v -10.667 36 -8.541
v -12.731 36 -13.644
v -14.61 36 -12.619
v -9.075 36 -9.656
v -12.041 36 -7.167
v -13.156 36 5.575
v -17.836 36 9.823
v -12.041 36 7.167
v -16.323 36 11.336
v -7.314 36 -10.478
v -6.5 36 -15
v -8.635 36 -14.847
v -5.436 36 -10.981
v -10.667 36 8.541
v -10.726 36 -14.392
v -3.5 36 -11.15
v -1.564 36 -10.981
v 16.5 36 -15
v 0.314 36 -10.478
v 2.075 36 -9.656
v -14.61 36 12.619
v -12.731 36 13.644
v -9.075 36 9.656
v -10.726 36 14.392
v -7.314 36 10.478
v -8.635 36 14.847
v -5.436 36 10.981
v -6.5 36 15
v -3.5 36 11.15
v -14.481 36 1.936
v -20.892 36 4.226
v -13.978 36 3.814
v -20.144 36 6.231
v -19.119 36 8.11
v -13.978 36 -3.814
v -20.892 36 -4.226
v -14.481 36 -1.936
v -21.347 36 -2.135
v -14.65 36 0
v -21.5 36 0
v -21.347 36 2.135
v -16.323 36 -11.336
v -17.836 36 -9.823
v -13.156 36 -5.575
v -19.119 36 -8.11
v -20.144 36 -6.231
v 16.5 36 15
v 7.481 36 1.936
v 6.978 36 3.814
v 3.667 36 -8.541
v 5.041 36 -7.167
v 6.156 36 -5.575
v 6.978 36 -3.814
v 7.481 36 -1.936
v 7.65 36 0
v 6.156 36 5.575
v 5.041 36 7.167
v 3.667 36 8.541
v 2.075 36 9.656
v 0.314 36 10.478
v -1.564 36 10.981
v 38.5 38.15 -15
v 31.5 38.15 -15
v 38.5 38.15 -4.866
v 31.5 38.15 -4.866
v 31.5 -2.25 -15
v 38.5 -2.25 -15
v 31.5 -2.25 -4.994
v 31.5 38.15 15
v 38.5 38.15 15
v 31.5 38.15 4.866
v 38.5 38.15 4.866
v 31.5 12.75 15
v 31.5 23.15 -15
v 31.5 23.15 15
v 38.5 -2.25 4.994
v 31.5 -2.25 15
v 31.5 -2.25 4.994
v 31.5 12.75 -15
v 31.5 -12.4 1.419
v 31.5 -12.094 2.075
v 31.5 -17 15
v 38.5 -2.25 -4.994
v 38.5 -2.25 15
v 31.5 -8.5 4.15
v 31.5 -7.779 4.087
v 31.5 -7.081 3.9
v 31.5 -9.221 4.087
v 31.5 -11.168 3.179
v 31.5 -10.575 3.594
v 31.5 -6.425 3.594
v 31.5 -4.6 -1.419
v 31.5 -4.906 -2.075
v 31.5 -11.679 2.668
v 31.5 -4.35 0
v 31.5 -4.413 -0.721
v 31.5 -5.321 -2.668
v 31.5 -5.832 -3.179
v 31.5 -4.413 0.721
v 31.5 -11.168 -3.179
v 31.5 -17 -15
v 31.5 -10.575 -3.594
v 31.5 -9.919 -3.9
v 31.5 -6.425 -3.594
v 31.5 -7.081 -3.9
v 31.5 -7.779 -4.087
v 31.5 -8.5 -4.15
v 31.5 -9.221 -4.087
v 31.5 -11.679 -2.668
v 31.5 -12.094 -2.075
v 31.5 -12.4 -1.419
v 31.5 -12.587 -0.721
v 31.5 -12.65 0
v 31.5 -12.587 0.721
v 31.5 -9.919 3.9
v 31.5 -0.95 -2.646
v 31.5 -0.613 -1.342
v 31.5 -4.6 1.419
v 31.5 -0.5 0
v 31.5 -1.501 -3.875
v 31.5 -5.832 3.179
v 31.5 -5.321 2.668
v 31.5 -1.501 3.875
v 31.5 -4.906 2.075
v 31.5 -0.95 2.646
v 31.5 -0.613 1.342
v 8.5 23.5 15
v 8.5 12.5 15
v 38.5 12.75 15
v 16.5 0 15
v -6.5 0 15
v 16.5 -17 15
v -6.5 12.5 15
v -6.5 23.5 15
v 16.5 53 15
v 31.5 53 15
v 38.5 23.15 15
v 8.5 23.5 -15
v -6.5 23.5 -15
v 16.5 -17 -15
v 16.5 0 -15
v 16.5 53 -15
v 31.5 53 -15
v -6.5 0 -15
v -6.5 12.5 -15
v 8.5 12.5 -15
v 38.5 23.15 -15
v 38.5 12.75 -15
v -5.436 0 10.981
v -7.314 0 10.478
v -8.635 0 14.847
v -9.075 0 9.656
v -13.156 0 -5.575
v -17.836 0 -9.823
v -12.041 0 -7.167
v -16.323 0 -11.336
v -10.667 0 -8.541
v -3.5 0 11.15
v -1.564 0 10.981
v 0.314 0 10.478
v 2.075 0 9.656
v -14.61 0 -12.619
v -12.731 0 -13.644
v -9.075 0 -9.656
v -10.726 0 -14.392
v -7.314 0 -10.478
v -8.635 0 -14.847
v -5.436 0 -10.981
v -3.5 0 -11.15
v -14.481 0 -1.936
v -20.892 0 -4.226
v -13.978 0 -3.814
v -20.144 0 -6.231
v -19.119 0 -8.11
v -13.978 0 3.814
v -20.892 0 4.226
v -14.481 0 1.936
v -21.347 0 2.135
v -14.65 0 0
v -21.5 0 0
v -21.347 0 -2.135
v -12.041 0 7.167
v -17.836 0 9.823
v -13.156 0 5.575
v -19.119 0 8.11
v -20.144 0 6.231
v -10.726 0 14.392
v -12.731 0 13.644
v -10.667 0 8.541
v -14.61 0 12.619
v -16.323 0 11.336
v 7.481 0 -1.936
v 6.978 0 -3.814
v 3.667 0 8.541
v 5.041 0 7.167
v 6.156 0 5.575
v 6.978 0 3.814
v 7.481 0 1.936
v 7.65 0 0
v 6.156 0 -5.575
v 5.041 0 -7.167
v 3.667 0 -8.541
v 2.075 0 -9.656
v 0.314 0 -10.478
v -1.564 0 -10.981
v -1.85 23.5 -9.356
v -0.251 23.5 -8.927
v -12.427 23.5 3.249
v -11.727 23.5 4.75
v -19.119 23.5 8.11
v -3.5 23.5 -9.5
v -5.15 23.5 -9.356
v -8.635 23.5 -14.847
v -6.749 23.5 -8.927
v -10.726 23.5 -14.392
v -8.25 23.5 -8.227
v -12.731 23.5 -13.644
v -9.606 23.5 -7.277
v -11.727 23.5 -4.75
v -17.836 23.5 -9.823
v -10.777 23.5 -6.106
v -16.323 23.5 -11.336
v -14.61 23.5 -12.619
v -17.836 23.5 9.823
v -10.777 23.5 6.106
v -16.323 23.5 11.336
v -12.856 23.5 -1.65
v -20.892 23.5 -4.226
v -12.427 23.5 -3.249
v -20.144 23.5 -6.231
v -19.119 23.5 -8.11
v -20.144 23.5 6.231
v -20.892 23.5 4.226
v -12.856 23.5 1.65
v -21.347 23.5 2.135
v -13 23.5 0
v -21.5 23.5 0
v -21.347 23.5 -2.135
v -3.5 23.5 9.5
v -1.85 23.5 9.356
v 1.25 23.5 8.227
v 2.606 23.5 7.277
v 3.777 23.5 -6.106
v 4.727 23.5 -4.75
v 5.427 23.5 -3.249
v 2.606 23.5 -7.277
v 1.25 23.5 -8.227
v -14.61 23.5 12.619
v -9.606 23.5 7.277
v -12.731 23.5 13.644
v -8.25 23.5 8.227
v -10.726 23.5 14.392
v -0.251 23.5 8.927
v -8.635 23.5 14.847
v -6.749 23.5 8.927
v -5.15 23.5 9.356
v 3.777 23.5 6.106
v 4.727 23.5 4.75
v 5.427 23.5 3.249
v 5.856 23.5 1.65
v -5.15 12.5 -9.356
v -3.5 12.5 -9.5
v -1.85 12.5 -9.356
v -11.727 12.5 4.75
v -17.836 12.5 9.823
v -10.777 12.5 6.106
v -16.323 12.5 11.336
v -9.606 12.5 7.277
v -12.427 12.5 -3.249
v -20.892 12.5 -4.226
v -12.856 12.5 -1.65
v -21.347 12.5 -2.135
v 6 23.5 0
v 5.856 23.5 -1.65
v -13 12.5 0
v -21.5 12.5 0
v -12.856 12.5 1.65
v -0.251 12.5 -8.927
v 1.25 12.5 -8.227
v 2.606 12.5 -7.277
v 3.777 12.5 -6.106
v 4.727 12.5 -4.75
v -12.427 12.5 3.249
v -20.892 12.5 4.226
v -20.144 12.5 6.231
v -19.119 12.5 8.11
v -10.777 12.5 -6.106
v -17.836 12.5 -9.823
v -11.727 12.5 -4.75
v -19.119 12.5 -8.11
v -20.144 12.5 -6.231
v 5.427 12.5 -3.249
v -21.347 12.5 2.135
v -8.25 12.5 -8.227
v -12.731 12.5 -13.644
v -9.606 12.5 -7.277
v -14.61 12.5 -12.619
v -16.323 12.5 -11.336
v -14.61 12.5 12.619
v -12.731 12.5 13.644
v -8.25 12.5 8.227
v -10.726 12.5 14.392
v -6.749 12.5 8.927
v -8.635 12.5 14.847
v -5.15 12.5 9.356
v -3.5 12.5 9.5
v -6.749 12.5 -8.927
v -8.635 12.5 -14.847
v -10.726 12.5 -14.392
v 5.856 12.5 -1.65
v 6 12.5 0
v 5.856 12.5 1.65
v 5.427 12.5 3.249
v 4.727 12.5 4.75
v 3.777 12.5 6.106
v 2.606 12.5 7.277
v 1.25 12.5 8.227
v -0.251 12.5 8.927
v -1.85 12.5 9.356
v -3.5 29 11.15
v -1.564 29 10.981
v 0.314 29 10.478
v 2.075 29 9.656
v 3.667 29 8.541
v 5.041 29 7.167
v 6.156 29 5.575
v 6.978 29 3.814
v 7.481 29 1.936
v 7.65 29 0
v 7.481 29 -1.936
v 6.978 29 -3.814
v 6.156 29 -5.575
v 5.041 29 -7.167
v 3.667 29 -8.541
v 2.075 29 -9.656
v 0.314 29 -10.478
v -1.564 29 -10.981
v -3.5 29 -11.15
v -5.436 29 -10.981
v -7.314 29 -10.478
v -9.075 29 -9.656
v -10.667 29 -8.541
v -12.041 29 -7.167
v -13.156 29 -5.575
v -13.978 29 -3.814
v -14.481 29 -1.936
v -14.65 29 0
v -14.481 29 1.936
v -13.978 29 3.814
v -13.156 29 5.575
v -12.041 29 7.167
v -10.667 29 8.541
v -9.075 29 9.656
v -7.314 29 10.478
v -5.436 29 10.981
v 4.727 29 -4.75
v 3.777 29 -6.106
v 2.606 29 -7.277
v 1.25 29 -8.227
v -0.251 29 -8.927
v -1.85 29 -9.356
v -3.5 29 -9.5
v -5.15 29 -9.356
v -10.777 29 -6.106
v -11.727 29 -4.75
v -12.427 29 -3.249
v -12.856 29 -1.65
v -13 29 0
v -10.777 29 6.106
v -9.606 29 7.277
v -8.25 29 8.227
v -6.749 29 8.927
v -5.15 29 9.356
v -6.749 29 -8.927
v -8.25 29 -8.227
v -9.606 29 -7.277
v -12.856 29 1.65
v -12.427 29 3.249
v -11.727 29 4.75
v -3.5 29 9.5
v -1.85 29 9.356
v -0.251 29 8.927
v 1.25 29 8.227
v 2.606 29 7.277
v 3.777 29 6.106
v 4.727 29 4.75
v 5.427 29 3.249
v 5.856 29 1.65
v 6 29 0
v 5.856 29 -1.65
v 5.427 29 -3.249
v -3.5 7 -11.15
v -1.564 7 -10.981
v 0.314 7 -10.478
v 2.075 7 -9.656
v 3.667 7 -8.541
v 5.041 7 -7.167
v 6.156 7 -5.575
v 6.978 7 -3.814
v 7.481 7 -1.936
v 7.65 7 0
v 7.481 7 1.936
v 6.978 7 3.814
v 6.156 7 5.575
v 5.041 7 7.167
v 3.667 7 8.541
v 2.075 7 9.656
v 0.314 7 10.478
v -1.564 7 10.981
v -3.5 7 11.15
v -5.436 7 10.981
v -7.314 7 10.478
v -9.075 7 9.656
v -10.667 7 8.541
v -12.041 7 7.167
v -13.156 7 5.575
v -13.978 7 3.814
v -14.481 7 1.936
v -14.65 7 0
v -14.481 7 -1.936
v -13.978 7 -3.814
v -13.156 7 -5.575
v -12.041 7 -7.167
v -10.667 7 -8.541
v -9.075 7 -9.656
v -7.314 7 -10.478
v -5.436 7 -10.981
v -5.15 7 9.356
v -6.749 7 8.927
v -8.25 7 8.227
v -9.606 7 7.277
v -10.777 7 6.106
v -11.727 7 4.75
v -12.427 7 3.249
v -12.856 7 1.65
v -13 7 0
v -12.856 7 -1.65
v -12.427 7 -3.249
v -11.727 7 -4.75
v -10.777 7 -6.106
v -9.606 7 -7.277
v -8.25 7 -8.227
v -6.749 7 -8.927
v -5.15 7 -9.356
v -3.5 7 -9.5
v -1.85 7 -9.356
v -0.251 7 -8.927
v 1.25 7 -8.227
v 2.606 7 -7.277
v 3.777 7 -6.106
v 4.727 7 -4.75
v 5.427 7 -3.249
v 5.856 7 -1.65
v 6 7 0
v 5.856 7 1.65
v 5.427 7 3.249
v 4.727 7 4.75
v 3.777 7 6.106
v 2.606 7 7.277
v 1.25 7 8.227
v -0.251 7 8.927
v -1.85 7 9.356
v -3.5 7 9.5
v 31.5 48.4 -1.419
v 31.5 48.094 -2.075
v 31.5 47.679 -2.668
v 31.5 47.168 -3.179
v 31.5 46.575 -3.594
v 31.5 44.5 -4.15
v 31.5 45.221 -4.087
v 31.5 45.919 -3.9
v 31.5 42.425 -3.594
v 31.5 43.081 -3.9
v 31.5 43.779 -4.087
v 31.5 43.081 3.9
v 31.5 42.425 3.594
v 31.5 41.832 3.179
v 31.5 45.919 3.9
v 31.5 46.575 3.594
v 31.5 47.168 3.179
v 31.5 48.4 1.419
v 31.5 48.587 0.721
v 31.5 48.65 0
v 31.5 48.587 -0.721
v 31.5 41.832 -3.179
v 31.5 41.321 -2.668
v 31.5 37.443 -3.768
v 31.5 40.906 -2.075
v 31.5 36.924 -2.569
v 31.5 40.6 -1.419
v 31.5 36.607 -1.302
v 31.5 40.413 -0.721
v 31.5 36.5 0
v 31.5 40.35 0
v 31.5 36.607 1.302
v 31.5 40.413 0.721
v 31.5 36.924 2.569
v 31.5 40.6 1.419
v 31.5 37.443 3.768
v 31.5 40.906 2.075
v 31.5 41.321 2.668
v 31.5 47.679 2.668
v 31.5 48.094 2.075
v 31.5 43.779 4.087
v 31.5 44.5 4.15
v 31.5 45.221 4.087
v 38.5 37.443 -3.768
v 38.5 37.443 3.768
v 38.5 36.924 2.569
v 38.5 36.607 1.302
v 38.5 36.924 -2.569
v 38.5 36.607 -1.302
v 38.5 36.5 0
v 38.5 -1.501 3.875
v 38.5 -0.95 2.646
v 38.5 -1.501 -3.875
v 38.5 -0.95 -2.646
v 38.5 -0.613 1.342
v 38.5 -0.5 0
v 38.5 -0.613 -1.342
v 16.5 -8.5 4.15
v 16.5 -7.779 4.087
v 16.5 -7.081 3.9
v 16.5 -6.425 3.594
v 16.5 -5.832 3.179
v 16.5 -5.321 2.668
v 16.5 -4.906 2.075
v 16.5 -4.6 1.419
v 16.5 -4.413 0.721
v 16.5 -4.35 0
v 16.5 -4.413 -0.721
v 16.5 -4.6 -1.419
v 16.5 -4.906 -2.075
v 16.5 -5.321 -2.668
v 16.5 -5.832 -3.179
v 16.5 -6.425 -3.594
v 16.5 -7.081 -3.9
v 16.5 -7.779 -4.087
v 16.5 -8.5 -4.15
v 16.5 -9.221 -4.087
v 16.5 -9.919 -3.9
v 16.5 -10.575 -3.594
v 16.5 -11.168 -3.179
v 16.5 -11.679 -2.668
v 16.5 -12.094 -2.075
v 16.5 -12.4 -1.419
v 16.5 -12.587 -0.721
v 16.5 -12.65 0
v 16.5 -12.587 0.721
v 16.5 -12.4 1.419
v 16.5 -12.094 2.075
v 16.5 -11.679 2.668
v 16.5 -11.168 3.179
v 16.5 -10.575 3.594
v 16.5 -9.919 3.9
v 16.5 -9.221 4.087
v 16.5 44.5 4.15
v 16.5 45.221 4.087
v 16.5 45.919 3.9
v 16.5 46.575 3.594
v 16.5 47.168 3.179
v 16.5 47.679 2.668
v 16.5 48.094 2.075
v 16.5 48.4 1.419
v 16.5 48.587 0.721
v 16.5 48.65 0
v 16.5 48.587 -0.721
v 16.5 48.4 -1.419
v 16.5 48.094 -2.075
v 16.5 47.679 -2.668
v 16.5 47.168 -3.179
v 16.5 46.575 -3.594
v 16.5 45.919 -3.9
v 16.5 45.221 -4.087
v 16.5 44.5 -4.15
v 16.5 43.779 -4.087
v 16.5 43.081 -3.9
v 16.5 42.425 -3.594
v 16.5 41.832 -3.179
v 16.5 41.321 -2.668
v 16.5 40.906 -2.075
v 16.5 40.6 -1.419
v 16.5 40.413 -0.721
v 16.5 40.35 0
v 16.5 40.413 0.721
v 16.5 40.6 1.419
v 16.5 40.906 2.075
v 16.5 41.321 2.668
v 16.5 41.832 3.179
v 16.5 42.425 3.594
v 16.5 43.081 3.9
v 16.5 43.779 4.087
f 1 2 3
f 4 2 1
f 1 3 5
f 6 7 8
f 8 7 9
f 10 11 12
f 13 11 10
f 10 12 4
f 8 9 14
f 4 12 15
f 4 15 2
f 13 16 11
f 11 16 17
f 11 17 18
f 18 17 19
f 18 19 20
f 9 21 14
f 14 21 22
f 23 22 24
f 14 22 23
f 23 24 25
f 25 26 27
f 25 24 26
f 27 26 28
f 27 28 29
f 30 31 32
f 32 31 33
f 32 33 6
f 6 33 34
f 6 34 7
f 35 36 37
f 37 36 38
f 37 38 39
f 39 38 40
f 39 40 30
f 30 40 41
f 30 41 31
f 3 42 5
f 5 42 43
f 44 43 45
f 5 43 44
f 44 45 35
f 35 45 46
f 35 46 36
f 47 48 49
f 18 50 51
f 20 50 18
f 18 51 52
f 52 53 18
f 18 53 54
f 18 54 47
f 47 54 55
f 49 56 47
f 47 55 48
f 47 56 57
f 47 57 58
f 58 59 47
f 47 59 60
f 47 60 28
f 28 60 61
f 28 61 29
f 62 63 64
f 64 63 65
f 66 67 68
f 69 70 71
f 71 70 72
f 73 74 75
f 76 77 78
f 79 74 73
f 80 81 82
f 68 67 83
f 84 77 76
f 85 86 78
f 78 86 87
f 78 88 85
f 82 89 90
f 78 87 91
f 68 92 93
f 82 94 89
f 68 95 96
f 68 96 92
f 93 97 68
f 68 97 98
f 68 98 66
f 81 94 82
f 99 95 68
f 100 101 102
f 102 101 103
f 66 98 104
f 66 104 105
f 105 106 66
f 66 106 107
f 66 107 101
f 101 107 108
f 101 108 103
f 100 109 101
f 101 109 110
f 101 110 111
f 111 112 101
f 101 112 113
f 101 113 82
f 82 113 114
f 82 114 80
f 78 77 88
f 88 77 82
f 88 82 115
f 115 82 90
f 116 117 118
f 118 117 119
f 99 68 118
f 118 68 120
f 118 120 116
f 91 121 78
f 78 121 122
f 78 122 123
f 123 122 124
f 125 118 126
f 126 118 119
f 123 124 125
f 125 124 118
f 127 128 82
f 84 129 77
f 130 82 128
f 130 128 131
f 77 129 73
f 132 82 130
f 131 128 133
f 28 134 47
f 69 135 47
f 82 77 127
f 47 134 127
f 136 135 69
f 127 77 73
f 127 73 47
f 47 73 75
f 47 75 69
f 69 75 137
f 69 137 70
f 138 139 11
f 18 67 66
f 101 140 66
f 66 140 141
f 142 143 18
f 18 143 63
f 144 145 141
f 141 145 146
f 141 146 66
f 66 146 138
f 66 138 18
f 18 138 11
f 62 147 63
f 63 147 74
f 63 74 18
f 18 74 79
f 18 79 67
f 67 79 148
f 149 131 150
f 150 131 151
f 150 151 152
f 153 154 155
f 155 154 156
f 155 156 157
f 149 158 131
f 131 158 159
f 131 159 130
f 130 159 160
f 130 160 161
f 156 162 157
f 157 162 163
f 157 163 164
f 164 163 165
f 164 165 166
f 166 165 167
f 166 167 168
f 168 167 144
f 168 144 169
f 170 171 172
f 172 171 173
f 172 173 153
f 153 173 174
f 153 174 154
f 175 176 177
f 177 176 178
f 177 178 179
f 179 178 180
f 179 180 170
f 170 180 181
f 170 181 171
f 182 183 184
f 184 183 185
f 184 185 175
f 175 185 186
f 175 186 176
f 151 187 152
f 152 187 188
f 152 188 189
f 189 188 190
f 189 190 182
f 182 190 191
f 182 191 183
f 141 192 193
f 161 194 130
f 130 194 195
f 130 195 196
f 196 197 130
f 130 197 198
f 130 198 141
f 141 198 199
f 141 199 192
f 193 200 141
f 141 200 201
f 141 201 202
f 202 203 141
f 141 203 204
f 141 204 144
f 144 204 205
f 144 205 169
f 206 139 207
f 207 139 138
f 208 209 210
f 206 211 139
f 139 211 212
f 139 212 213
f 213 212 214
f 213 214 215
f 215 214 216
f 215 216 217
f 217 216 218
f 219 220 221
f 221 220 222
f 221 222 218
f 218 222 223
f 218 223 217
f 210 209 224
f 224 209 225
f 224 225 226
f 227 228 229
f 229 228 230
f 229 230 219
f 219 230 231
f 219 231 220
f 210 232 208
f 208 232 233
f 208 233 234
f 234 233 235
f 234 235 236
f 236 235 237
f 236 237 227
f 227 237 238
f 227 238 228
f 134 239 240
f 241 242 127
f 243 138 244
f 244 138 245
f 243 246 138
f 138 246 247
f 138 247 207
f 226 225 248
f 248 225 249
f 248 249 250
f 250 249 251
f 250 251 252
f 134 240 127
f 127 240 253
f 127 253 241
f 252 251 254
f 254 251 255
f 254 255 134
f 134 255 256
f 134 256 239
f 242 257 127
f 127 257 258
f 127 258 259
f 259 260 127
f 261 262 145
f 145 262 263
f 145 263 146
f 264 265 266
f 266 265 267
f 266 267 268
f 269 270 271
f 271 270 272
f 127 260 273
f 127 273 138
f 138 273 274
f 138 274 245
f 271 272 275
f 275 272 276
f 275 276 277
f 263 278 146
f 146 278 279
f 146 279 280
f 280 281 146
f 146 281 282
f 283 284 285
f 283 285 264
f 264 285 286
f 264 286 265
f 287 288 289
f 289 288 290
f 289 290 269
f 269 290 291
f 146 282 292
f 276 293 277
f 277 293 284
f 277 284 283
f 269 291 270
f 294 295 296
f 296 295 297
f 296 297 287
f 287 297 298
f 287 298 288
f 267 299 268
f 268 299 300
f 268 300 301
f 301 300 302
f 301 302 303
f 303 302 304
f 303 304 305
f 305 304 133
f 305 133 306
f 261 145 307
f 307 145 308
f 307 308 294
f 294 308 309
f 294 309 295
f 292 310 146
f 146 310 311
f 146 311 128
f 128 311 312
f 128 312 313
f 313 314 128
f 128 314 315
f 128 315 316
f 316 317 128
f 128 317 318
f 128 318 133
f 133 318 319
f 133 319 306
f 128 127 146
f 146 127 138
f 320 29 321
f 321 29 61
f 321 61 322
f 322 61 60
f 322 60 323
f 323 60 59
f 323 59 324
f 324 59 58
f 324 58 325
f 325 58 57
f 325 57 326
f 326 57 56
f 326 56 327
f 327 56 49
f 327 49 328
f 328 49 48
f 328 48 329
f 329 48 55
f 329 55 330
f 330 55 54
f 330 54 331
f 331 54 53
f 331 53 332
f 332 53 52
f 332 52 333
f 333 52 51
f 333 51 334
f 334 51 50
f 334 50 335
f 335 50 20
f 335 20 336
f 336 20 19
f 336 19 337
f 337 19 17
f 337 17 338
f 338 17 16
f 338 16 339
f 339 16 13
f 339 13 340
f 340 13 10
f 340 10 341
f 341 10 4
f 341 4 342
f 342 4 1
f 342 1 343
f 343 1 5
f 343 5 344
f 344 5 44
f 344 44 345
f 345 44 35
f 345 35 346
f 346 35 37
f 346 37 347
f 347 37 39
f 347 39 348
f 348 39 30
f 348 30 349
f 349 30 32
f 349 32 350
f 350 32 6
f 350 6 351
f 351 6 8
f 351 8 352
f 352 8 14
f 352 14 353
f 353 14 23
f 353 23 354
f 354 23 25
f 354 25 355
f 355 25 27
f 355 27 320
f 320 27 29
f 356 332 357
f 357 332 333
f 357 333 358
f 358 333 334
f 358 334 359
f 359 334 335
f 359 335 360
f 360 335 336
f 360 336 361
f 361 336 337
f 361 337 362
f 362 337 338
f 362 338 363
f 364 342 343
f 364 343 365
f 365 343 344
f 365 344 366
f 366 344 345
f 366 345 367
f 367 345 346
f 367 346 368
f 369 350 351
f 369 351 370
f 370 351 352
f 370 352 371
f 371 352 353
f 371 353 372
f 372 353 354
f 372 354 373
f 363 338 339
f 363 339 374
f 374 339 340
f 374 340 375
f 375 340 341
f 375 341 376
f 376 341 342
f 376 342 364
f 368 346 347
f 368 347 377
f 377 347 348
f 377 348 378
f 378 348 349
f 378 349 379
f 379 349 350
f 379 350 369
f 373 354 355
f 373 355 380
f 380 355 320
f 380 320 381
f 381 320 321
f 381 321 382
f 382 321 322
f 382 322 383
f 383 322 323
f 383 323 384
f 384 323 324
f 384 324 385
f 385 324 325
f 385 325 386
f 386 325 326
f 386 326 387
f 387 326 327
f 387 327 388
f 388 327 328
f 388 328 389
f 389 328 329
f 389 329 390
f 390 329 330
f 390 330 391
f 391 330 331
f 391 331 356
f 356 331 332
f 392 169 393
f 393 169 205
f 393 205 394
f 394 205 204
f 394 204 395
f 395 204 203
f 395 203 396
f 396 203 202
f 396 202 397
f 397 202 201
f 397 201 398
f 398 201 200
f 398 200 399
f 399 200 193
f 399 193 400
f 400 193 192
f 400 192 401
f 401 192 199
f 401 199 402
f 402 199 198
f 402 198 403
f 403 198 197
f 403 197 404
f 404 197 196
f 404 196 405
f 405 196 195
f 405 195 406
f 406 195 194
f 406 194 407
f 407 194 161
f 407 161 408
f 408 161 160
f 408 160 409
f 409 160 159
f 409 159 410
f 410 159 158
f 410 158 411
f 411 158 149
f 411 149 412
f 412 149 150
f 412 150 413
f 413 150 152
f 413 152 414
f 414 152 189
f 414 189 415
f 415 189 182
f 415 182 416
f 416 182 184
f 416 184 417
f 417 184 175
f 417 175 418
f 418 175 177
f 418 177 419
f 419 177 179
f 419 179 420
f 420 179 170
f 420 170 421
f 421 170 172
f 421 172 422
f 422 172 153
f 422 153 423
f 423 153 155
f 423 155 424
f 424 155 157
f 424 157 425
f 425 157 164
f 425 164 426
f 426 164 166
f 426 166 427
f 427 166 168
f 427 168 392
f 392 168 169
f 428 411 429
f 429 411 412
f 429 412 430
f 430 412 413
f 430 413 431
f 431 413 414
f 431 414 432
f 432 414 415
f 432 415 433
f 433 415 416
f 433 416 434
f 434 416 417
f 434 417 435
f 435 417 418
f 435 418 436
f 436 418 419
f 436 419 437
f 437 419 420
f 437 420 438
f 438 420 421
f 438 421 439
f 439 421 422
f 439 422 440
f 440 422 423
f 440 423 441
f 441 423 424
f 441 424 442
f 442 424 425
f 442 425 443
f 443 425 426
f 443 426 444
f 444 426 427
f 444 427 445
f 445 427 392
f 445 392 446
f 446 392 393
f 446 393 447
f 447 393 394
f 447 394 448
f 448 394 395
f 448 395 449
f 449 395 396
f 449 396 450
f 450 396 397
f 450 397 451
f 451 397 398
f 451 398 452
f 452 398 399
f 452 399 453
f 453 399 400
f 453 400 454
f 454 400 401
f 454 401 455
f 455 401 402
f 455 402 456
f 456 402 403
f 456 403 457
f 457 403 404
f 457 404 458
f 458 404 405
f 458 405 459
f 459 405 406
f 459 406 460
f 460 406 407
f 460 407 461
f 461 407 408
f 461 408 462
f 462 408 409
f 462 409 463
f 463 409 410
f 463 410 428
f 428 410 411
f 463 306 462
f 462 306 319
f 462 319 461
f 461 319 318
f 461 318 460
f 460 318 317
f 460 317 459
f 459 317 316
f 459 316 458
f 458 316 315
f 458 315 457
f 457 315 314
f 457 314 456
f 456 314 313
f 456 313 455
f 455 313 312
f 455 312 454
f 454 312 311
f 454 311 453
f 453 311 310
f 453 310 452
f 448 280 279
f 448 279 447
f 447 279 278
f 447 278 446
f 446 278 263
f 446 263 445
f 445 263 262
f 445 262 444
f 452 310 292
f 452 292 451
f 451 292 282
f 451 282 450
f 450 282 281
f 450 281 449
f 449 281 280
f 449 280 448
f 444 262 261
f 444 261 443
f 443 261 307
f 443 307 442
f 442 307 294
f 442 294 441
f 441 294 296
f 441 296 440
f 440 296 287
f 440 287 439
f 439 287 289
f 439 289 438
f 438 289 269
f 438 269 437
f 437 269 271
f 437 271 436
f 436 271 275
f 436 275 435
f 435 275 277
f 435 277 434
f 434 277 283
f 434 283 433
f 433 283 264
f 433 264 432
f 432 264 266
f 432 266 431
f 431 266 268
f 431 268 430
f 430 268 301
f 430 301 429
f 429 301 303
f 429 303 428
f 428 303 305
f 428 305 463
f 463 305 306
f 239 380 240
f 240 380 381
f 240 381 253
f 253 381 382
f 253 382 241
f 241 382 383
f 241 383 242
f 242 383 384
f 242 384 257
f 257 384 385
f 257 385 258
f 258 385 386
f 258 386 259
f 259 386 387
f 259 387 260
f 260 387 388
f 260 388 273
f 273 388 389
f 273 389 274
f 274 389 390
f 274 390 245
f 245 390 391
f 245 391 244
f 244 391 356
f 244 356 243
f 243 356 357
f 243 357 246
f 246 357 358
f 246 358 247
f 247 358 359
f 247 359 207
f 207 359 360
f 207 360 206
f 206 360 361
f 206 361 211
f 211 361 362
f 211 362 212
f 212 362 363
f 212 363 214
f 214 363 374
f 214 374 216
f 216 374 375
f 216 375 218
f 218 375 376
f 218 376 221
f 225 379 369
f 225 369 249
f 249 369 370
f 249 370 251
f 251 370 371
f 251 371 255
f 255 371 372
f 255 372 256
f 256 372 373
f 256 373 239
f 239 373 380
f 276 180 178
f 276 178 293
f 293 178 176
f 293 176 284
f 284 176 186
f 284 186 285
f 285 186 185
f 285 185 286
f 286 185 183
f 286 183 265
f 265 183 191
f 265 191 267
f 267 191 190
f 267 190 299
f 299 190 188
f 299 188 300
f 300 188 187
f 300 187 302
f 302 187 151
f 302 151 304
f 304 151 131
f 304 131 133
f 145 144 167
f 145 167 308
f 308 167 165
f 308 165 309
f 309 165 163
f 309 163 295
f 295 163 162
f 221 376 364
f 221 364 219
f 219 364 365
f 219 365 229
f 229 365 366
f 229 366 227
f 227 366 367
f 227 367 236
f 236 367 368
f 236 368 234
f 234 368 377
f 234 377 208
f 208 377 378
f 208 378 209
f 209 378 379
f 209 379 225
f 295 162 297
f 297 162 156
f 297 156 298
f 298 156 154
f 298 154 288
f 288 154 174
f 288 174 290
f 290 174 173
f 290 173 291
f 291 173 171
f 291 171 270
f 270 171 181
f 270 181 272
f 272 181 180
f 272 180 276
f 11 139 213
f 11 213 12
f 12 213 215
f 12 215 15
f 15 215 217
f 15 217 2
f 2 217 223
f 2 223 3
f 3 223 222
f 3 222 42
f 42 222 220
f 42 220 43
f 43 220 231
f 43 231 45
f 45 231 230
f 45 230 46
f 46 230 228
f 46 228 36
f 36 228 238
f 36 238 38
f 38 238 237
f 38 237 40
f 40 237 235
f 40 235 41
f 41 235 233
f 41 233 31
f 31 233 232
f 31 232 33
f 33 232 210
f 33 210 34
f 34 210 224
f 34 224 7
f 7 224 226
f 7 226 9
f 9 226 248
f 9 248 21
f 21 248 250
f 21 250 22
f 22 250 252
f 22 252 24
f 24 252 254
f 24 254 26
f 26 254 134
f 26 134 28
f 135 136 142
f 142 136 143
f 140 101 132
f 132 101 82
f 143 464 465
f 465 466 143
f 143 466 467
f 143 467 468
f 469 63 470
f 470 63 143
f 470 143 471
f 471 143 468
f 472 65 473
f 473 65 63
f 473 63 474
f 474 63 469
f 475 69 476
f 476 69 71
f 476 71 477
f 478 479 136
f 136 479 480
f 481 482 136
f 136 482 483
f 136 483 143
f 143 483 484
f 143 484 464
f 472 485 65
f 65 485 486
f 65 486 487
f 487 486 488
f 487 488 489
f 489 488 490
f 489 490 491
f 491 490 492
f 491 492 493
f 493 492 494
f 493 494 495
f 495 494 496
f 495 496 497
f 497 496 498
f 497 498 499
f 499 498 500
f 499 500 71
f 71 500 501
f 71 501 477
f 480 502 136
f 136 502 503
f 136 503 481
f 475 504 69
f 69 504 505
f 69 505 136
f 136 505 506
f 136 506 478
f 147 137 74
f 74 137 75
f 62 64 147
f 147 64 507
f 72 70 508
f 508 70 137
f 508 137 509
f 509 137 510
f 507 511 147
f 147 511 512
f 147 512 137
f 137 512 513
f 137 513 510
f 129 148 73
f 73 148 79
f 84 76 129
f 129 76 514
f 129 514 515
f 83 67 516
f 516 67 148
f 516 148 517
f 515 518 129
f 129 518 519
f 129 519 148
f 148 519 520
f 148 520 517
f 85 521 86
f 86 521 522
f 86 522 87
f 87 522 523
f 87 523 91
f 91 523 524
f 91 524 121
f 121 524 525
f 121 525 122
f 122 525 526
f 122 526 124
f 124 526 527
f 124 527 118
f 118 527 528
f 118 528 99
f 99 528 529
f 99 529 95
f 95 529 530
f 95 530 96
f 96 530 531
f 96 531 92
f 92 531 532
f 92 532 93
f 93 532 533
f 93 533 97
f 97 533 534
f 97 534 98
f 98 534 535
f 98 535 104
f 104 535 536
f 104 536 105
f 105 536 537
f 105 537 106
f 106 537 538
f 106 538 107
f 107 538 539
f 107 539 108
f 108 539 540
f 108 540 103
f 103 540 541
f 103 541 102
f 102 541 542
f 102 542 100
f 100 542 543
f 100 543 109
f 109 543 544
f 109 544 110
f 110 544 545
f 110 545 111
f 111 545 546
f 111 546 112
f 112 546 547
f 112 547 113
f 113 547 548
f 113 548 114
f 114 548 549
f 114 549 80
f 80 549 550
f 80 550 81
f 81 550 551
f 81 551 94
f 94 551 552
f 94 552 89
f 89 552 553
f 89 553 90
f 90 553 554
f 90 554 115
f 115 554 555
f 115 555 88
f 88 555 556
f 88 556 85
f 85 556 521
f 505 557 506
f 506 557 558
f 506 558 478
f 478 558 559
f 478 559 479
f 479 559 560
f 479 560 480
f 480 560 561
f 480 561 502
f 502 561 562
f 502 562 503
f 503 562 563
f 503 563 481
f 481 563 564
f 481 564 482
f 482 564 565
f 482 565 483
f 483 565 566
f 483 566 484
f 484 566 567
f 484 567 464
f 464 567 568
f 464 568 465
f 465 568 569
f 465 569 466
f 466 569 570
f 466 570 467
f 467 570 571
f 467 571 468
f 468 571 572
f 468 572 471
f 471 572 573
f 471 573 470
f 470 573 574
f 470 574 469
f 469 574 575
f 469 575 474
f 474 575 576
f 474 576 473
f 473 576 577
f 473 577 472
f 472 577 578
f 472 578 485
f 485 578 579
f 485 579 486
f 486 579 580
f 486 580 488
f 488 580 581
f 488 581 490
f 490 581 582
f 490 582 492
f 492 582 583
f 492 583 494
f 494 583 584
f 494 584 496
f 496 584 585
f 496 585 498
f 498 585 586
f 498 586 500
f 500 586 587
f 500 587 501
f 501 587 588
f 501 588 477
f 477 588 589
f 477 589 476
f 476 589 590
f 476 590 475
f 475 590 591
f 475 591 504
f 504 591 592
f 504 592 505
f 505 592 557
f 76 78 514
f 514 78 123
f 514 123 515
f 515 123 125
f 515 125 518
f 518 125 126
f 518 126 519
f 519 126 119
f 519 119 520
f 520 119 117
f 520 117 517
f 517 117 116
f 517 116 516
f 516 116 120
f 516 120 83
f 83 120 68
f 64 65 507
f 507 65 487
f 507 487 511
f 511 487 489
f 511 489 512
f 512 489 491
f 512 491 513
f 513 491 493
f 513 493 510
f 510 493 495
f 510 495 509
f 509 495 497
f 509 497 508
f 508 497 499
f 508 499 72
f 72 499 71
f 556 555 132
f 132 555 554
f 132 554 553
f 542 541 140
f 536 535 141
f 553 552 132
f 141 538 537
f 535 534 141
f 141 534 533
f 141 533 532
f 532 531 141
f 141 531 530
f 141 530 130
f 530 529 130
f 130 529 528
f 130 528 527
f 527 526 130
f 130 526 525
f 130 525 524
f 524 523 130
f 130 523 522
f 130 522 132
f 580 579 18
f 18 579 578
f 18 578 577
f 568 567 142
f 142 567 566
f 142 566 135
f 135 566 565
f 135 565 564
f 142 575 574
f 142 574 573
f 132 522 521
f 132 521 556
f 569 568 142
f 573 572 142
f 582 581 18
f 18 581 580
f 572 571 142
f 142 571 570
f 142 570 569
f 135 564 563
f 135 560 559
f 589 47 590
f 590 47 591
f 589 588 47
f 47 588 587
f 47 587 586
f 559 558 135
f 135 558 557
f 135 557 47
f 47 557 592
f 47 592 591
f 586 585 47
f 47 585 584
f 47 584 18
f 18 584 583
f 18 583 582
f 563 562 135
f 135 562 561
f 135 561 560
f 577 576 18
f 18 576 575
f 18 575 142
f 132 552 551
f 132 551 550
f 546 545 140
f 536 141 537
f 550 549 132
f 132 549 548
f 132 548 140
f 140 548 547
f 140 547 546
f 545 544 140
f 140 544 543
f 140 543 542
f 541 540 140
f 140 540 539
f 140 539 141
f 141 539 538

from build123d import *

# Parameters (mm, degrees)
SKETCH1_W           = 43
SKETCH1_H           = 30
BOSS_EXTRUDE1_DEPTH = 36
SKETCH2_W           = 30
SKETCH2_H           = 11
CUT_EXTRUDE1_DEPTH  = 30
SKETCH3_R           = 11.15
CUT_EXTRUDE2_DEPTH  = 7
CUT_EXTRUDE3_START  = -7
SKETCH4_R           = 11.15
CUT_EXTRUDE3_DEPTH  = 7
SKETCH5_R           = 9.5
CUT_EXTRUDE4_DEPTH  = 40.092838219
FILLET2_R           = 15
SKETCH6_W           = 30
SKETCH6_H           = 70
BOSS_EXTRUDE2_DEPTH = 10
SKETCH7_W           = 30
SKETCH7_H           = 15
BOSS_EXTRUDE3_DEPTH = 7
SKETCH8_R           = 4.15
CUT_EXTRUDE5_DEPTH  = 70.878465925
SKETCH9_R           = 8
CUT_EXTRUDE6_DEPTH  = 77.439518575
BOSS_EXTRUDE4_START = 5
SKETCH10_W          = 30
SKETCH10_H          = 17
SKETCH10_R          = 4.15
BOSS_EXTRUDE4_DEPTH = 5


with BuildPart() as part:
    # Sketch1 → Boss-Extrude1 (new body)
    with BuildSketch(Plane(origin=(0, 0, 0), x_dir=(1, 0, 0), z_dir=(0, 1, 0))):
        Rectangle(SKETCH1_W, SKETCH1_H)
    extrude(amount=BOSS_EXTRUDE1_DEPTH)

    # Sketch2 → Cut-Extrude1 (cut)
    with BuildSketch(Plane.ZY.offset(21.5)):
        with Locations((0, 18)):
            Rectangle(SKETCH2_W, SKETCH2_H)
    extrude(amount=-CUT_EXTRUDE1_DEPTH, mode=Mode.SUBTRACT)

    # Sketch3 → Cut-Extrude2 (cut)
    with BuildSketch(Plane(origin=(0, 36, 0), x_dir=(1, 0, 0), z_dir=(0, 1, 0))):
        with Locations(Location((-3.5, 0, 0), (0, 0, 270))):
            Circle(SKETCH3_R)
    extrude(amount=-CUT_EXTRUDE2_DEPTH, mode=Mode.SUBTRACT)

    # Sketch4 → Cut-Extrude3 (cut)
    with BuildSketch(Plane.XZ.offset(CUT_EXTRUDE3_START)):
        with Locations(Location((-3.5, 0, 0), (0, 0, 90))):
            Circle(SKETCH4_R)
    extrude(amount=CUT_EXTRUDE3_DEPTH, mode=Mode.SUBTRACT)

    # Sketch5 → Cut-Extrude4 (cut, through all)
    with BuildSketch(Plane(origin=(0, 29, 0), x_dir=(1, 0, 0), z_dir=(0, 1, 0))):
        with Locations(Location((-3.5, 0, 0), (0, 0, 90))):
            Circle(SKETCH5_R)
    extrude(amount=-CUT_EXTRUDE4_DEPTH, mode=Mode.SUBTRACT)

    # Fillet2
    fillet2_edges = [part.edges().sort_by_distance(p)[0] for p in [
        (-21.5, 6.25, -15),
        (-21.5, 6.25, 15),
        (-21.5, 29.75, 15),
        (-21.5, 29.75, -15),
    ]]
    fillet(fillet2_edges, radius=FILLET2_R - 0.0001)  # a hair under: the kernel refuses the full size

    # Sketch6 → Boss-Extrude2 (add)
    with BuildSketch(Plane(origin=(21.5, 0, 0), x_dir=(0, 0, -1), z_dir=(1, 0, 0))):
        with Locations((0, 18)):
            Rectangle(SKETCH6_W, SKETCH6_H)
    extrude(amount=BOSS_EXTRUDE2_DEPTH)

    # Sketch7 → Boss-Extrude3 (add)
    with BuildSketch(Plane(origin=(31.5, 0, 0), x_dir=(0, 0, -1), z_dir=(1, 0, 0))):
        with Locations((0, 30.65)):
            Rectangle(SKETCH7_W, SKETCH7_H)
        with Locations((0, 5.25)):
            Rectangle(SKETCH7_W, SKETCH7_H)
    extrude(amount=BOSS_EXTRUDE3_DEPTH)

    # Sketch8 → Cut-Extrude5 (cut, through all)
    with BuildSketch(Plane.ZY.offset(-21.5)):
        with Locations((0, -8.5)):
            Circle(SKETCH8_R)
        with Locations((0, 44.5)):
            Circle(SKETCH8_R)
    extrude(amount=-CUT_EXTRUDE5_DEPTH, mode=Mode.SUBTRACT)

    # Sketch9 → Cut-Extrude6 (cut, through all)
    with BuildSketch(Plane(origin=(31.5, 0, 0), x_dir=(0, 0, -1), z_dir=(1, 0, 0))):
        with Locations((0, -8.5)):
            Circle(SKETCH9_R)
        with Locations((0, 44.5)):
            Circle(SKETCH9_R)
    extrude(amount=CUT_EXTRUDE6_DEPTH, mode=Mode.SUBTRACT)

    # Sketch10 → Boss-Extrude4 (add)
    # profile 1 of 2: a face of its own
    with BuildSketch(Plane.ZY.offset(-21.5).offset(BOSS_EXTRUDE4_START)):
        with Locations((0, -8.5)):
            Rectangle(SKETCH10_W, SKETCH10_H)
        with Locations((0, -8.5)):
            Circle(SKETCH10_R, mode=Mode.SUBTRACT)
    # profile 2 of 2: a face of its own
    with BuildSketch(Plane.ZY.offset(-21.5).offset(BOSS_EXTRUDE4_START)):
        with Locations((0, 44.5)):
            Rectangle(SKETCH10_W, SKETCH10_H)
        with Locations((0, 44.5)):
            Circle(SKETCH10_R, mode=Mode.SUBTRACT)
    extrude(amount=-BOSS_EXTRUDE4_DEPTH)


solid = part.part
